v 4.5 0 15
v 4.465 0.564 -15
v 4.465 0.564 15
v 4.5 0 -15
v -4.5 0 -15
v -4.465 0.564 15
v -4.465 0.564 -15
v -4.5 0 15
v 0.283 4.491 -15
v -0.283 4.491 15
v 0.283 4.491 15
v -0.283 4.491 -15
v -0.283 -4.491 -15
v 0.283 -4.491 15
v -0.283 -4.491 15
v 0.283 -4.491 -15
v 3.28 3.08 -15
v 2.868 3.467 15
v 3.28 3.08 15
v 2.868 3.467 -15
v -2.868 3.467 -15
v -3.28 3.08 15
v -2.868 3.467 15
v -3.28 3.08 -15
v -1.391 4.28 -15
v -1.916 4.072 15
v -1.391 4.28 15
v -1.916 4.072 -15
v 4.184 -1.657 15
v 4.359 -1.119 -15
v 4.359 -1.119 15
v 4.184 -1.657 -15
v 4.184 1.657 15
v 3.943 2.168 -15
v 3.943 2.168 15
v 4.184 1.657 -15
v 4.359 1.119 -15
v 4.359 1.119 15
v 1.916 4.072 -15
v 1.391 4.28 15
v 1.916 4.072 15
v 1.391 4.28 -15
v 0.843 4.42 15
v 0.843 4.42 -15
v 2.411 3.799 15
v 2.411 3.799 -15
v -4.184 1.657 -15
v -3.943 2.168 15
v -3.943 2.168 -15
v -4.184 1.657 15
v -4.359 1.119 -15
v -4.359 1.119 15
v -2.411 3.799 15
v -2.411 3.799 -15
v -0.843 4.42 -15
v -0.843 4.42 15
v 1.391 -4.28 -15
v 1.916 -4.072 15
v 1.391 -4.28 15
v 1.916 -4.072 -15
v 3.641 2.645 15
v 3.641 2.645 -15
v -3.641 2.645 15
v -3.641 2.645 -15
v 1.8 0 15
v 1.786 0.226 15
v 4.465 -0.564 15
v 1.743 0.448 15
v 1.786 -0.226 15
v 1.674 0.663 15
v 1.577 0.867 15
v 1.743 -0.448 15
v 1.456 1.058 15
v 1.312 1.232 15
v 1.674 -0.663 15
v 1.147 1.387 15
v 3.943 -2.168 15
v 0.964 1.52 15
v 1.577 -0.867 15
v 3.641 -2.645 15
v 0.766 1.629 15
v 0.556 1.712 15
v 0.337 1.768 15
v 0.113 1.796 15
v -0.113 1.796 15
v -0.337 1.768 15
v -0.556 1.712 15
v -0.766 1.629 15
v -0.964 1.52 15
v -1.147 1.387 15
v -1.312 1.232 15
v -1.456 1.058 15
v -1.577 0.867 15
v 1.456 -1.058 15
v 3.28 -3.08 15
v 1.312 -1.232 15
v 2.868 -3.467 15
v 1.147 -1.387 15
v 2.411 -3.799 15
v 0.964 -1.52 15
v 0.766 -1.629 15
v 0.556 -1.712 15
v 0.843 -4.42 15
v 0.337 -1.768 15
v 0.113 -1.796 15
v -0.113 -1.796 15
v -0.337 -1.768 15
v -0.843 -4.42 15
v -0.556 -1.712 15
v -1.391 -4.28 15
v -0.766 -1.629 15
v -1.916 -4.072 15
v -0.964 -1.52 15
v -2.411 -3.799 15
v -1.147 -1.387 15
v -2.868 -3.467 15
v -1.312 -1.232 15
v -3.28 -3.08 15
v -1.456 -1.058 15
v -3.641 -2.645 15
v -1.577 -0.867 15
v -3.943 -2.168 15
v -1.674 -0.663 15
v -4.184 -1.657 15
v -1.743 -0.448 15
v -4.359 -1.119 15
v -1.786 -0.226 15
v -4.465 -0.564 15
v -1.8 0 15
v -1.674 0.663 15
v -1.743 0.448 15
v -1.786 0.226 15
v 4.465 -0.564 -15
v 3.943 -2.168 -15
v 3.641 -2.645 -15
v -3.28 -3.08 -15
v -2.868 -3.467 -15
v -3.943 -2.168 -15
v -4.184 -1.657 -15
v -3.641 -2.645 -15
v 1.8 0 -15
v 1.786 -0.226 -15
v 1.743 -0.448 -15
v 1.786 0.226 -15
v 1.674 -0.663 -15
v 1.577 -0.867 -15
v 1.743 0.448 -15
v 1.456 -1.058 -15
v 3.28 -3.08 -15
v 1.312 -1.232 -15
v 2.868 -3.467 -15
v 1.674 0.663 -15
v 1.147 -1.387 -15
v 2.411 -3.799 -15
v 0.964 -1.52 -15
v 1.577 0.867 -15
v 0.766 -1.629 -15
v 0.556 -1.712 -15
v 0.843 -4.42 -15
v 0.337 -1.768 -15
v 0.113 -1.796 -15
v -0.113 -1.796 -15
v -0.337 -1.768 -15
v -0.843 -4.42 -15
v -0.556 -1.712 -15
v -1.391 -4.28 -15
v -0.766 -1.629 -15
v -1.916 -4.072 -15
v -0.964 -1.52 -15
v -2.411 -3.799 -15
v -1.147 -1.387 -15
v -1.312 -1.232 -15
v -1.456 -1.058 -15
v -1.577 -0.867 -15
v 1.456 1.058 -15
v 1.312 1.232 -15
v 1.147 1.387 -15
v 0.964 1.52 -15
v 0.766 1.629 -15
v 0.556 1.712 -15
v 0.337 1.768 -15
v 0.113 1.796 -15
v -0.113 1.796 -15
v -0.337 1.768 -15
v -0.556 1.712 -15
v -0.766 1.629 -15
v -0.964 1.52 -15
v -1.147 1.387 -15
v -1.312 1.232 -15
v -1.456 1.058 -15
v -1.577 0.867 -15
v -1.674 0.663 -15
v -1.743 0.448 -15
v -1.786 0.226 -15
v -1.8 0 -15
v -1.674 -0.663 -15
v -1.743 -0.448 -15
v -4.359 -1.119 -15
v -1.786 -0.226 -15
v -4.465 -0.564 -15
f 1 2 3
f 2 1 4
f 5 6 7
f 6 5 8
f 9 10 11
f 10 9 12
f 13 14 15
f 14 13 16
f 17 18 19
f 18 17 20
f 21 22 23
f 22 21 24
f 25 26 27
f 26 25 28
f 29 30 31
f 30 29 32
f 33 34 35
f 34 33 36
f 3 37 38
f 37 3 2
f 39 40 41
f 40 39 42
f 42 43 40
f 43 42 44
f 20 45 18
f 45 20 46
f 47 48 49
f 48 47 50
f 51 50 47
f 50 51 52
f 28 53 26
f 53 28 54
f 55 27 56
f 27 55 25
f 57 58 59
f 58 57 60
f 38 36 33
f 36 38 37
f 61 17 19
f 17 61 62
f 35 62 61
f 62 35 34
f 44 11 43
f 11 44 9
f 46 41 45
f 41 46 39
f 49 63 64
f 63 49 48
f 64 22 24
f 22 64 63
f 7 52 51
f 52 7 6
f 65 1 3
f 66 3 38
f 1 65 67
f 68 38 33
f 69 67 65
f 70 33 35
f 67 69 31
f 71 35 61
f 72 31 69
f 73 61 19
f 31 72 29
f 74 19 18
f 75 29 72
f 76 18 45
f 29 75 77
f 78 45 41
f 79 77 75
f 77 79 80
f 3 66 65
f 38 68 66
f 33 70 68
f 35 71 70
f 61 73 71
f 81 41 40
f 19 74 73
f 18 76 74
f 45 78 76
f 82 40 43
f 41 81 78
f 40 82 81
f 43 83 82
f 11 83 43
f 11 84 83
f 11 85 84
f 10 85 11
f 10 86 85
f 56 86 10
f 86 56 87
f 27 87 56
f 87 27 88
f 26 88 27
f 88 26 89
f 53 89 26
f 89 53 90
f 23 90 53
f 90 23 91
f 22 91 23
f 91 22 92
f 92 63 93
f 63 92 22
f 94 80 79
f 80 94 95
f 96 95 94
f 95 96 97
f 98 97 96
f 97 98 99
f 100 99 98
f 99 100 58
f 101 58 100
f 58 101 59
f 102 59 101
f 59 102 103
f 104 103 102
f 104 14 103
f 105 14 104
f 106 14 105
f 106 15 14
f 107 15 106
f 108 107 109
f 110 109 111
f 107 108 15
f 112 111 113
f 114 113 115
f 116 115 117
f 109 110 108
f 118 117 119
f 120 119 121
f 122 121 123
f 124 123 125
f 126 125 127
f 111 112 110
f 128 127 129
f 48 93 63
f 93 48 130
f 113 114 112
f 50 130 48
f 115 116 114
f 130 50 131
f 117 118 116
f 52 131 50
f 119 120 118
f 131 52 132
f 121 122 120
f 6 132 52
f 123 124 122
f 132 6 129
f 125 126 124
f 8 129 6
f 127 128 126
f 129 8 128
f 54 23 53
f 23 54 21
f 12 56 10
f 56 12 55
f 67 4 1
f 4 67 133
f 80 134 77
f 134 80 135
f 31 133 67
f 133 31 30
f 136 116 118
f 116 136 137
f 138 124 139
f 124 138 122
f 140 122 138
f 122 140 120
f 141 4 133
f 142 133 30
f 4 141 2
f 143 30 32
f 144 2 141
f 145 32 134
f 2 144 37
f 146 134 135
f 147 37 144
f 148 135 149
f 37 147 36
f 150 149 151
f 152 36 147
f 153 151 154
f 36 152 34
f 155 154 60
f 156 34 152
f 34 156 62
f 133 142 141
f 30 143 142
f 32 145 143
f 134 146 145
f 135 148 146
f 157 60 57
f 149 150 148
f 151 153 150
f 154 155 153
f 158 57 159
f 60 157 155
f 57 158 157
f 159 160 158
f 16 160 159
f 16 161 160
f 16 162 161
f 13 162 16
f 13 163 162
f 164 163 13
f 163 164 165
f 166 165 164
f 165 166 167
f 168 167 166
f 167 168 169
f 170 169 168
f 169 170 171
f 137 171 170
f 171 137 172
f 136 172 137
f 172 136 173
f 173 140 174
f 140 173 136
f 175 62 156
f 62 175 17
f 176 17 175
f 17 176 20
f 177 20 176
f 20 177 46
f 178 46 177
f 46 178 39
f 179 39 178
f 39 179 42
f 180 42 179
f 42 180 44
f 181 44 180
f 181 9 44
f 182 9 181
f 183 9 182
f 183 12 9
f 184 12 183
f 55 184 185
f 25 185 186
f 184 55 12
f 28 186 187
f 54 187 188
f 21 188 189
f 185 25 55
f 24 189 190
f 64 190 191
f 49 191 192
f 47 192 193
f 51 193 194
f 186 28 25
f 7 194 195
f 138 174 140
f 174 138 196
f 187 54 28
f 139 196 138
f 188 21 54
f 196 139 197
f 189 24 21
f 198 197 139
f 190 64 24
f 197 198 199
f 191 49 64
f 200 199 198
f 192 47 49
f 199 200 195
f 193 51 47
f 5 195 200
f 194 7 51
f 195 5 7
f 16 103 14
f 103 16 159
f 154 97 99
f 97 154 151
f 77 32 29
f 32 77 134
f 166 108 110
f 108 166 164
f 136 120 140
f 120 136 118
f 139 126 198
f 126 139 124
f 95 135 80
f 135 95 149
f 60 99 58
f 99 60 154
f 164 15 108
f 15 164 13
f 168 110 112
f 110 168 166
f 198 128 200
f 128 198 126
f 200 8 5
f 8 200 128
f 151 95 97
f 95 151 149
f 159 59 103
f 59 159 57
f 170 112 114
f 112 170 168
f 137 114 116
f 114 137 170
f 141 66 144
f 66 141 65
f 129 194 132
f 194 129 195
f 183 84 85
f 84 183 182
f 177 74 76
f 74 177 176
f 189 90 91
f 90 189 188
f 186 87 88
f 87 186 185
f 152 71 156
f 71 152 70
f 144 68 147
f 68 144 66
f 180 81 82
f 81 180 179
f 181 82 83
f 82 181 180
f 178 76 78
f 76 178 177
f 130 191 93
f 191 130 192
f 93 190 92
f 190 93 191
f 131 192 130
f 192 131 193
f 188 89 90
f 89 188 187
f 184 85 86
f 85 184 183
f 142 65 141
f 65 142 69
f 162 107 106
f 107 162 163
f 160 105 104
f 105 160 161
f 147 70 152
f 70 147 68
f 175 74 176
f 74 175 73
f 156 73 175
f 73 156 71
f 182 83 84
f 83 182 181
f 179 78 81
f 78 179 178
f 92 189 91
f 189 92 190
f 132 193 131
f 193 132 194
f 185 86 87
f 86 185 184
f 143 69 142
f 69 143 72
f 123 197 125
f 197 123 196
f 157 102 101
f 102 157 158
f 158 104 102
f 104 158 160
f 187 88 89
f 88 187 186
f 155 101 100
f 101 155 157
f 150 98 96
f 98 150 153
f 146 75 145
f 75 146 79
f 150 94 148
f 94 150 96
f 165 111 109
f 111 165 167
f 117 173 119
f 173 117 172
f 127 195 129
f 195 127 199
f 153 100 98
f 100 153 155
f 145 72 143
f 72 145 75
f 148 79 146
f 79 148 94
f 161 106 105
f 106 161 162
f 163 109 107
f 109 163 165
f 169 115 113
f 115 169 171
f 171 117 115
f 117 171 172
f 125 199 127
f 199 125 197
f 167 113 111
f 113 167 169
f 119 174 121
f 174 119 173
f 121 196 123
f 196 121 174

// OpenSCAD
$fn = 50;


difference() {
	union() {
		translate(v = [0, 0, -15.0000000000]) {
			cylinder(h = 30, r = 4.5000000000);
		}
	}
	union() {
		#translate(v = [0, 0, -100.0000000000]) {
			cylinder(h = 200, r = 1.8000000000);
		}
	}
}
